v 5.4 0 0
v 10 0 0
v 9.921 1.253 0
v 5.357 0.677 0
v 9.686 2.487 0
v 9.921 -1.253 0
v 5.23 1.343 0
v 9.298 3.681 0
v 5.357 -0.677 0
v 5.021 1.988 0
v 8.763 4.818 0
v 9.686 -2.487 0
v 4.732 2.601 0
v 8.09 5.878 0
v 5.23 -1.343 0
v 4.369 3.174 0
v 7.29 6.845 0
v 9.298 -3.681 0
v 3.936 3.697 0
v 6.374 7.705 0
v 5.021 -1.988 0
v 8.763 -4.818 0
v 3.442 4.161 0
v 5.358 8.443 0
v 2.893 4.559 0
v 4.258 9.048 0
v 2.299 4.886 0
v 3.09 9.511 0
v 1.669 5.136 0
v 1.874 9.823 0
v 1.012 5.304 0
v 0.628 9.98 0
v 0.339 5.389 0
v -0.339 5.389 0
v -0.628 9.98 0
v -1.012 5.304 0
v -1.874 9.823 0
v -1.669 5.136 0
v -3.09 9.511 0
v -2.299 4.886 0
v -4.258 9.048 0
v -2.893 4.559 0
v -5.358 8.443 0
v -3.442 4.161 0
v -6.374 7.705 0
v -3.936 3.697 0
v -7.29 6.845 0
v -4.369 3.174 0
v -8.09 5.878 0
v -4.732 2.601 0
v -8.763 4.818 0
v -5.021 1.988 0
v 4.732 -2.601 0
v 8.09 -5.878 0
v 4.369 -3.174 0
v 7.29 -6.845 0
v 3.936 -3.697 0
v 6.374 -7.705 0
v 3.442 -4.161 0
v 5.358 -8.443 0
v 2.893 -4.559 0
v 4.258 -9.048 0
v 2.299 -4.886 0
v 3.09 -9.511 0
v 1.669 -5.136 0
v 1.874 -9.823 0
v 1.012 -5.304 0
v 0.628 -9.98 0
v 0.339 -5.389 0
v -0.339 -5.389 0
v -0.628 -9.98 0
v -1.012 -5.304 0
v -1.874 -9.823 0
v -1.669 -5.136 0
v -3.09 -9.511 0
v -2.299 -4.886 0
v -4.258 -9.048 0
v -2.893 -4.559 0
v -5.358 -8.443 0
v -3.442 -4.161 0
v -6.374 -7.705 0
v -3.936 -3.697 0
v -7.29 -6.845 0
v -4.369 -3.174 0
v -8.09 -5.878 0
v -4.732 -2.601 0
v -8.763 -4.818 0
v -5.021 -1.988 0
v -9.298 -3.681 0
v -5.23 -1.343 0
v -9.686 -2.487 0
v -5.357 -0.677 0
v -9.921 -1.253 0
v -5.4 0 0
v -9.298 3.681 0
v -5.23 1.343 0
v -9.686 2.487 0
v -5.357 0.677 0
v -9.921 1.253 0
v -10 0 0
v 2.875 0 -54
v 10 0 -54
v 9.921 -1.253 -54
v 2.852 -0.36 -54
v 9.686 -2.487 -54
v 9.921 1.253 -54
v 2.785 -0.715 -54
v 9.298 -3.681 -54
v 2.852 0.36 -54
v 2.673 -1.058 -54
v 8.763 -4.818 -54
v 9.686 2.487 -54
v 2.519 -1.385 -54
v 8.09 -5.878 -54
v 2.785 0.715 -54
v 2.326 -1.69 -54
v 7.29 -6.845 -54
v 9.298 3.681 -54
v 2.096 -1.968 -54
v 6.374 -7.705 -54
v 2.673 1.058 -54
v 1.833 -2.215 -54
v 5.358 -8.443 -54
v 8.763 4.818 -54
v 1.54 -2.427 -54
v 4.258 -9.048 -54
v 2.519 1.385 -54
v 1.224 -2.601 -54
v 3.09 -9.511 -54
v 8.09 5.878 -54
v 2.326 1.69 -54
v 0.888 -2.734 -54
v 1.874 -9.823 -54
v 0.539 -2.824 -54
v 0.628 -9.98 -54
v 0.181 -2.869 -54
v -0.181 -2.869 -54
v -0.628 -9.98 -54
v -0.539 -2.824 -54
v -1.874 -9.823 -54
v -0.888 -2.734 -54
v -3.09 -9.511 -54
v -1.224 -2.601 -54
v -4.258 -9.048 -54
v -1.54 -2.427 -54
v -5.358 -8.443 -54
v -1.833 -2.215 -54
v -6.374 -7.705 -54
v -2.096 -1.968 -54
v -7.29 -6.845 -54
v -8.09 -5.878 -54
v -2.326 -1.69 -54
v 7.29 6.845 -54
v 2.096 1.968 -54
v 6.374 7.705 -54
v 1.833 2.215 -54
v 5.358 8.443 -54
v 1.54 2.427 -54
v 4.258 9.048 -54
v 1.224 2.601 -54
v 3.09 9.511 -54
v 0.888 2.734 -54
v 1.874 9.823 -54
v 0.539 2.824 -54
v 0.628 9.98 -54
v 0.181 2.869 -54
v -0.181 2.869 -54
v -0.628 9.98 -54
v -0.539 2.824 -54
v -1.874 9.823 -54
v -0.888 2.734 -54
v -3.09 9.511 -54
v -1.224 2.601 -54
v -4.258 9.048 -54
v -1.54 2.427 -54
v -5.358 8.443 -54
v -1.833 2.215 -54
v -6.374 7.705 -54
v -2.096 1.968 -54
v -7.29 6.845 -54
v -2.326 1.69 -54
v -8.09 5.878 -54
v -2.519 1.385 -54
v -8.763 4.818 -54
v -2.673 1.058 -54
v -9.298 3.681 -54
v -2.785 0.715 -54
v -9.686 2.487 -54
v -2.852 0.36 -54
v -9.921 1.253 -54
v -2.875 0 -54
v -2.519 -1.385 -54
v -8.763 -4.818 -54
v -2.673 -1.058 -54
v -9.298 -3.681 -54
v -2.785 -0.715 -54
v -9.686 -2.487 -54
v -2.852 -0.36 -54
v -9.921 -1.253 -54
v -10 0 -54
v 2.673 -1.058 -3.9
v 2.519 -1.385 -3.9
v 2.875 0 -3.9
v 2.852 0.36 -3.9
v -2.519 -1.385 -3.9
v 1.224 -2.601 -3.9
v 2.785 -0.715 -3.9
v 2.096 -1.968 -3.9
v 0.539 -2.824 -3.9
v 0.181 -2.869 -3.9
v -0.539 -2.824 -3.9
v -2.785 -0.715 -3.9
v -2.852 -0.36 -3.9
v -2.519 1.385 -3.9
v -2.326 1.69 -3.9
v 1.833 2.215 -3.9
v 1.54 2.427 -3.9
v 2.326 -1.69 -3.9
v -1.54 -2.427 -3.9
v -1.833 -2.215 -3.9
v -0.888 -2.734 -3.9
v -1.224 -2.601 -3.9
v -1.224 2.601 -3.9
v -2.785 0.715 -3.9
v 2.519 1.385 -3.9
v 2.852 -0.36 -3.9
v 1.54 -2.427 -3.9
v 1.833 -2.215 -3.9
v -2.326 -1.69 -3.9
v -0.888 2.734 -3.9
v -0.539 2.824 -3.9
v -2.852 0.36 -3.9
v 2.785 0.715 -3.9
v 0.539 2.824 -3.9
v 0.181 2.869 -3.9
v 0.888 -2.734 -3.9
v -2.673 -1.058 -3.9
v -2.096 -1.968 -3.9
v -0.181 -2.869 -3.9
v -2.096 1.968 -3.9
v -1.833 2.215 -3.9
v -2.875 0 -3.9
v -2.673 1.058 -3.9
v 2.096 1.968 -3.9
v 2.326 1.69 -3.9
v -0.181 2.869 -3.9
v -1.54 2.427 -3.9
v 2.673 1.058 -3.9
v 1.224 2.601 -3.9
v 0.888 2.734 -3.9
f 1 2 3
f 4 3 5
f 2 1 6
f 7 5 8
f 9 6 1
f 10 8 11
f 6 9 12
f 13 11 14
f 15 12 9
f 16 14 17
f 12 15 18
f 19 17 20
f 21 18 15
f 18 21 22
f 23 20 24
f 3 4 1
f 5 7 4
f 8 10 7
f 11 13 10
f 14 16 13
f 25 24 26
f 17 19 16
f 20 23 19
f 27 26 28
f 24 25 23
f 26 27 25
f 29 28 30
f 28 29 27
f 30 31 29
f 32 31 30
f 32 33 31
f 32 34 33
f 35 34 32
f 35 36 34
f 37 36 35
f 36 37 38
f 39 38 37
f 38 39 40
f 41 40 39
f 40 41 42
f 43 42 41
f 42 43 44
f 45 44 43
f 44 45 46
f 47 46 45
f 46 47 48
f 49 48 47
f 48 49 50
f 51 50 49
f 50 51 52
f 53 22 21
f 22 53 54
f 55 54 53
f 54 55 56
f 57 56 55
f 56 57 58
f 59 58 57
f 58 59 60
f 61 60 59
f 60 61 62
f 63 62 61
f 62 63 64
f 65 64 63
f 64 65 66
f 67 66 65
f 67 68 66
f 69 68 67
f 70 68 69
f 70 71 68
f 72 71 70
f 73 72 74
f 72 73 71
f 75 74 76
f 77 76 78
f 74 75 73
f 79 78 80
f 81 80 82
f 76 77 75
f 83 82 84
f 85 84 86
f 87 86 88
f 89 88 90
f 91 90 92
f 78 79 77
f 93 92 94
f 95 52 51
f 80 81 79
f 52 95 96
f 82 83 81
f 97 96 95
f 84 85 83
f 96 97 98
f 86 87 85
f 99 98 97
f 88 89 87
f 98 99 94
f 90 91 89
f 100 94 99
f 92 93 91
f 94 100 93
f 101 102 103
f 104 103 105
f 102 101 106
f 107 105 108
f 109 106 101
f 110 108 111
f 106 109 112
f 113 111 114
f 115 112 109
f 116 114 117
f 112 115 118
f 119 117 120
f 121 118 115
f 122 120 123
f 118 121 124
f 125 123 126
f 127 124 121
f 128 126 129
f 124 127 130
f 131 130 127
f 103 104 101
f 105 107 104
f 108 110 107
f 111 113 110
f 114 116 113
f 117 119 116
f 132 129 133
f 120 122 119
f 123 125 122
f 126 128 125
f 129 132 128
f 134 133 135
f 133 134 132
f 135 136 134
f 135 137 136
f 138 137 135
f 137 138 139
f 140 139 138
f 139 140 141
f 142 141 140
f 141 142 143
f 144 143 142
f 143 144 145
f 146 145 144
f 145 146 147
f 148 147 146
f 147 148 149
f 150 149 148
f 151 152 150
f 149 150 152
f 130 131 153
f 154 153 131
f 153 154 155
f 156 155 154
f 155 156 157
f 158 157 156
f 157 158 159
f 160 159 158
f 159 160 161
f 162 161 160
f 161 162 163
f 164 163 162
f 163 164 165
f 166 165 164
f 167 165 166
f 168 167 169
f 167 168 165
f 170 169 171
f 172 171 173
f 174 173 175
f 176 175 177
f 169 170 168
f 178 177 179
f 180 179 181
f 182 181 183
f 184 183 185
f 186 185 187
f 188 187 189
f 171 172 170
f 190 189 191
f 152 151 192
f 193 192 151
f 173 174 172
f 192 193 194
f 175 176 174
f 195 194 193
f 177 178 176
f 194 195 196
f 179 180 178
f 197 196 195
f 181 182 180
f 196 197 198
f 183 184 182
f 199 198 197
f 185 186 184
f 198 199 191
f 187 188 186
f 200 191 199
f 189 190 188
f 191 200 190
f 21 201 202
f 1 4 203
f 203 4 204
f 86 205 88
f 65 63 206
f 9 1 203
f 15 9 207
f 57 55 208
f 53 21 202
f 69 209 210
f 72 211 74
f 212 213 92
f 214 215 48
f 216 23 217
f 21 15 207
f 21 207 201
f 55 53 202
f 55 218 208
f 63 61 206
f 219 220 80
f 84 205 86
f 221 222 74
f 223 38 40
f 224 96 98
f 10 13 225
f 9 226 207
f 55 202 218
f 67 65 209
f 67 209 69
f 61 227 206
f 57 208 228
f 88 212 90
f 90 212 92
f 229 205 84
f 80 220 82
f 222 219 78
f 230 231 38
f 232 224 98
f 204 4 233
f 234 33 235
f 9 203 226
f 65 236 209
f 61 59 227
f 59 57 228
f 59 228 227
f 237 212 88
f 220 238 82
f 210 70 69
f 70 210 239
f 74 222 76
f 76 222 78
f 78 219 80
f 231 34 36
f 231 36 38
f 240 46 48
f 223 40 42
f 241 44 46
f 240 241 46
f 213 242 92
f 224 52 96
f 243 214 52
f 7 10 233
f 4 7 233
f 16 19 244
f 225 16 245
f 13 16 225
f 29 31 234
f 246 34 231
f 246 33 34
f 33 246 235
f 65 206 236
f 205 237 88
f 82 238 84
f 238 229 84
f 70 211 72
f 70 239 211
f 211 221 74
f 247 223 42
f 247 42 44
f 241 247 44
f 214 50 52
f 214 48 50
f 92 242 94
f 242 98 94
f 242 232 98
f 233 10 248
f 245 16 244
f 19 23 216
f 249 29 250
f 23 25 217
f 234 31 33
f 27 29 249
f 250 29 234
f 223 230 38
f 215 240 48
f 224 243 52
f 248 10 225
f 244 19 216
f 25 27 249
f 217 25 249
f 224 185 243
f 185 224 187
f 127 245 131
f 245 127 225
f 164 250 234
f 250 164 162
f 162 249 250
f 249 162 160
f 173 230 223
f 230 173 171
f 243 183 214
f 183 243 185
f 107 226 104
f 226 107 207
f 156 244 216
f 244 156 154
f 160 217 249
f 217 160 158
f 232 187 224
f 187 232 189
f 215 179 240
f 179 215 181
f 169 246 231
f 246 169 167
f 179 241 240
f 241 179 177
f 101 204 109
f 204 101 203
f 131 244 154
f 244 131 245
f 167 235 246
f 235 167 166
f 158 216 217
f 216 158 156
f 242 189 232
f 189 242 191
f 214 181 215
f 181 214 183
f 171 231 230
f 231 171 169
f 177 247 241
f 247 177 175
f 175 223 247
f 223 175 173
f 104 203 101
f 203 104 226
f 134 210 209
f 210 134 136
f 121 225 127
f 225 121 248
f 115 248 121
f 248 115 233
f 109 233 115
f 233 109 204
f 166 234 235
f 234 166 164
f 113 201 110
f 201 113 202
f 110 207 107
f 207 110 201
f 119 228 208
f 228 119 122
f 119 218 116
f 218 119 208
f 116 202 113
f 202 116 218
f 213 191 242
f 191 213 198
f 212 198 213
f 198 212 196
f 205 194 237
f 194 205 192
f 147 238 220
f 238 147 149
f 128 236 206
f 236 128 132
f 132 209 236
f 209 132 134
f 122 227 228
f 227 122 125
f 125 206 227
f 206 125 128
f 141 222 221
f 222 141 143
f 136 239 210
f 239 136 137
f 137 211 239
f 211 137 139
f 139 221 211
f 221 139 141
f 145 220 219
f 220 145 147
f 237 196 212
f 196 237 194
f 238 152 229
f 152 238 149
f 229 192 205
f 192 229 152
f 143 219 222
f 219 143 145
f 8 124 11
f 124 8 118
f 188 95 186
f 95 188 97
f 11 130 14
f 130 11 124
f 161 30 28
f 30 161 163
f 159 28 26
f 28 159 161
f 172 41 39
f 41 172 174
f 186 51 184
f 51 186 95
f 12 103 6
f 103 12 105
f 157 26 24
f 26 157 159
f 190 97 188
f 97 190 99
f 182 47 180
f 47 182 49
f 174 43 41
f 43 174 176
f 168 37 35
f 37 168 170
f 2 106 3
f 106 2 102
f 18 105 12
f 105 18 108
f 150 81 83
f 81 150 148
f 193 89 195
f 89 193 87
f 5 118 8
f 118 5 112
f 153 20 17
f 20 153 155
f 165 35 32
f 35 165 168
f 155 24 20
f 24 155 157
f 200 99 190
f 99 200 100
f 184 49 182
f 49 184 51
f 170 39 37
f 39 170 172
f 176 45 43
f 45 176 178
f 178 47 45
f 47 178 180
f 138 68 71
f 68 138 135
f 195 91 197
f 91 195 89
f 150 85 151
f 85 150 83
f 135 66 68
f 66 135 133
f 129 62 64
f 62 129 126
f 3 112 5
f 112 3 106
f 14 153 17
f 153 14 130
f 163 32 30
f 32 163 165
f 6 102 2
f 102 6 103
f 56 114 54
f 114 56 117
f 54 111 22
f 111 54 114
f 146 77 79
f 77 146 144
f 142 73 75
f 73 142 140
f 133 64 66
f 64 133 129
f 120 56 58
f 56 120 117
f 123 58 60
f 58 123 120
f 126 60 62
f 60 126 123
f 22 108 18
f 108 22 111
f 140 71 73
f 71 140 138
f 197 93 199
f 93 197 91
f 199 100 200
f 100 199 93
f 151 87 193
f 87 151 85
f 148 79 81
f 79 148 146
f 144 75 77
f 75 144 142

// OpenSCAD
$fn = 50;


difference() {
	union() {
		translate(v = [0, 0, -54.0000000000]) {
			cylinder(h = 54, r = 10.0000000000);
		}
	}
	union() {
		translate(v = [0, 0, 0]) {
			rotate(a = [0, 0, 0]) {
				difference() {
					union() {
						#translate(v = [0, 0, -54.0000000000]) {
							cylinder(h = 54, r = 2.6000000000);
						}
						#translate(v = [0, 0, -3.9000000000]) {
							cylinder(h = 3.9000000000, r = 10.0000000000, r1 = 2.8750000000, r2 = 5.4000000000);
						}
						#translate(v = [0, 0, -54.0000000000]) {
							cylinder(h = 54, r = 2.8750000000);
						}
						#translate(v = [0, 0, -54.0000000000]) {
							cylinder(h = 54, r = 2.6000000000);
						}
					}
					union();
				}
			}
		}
	}
}
